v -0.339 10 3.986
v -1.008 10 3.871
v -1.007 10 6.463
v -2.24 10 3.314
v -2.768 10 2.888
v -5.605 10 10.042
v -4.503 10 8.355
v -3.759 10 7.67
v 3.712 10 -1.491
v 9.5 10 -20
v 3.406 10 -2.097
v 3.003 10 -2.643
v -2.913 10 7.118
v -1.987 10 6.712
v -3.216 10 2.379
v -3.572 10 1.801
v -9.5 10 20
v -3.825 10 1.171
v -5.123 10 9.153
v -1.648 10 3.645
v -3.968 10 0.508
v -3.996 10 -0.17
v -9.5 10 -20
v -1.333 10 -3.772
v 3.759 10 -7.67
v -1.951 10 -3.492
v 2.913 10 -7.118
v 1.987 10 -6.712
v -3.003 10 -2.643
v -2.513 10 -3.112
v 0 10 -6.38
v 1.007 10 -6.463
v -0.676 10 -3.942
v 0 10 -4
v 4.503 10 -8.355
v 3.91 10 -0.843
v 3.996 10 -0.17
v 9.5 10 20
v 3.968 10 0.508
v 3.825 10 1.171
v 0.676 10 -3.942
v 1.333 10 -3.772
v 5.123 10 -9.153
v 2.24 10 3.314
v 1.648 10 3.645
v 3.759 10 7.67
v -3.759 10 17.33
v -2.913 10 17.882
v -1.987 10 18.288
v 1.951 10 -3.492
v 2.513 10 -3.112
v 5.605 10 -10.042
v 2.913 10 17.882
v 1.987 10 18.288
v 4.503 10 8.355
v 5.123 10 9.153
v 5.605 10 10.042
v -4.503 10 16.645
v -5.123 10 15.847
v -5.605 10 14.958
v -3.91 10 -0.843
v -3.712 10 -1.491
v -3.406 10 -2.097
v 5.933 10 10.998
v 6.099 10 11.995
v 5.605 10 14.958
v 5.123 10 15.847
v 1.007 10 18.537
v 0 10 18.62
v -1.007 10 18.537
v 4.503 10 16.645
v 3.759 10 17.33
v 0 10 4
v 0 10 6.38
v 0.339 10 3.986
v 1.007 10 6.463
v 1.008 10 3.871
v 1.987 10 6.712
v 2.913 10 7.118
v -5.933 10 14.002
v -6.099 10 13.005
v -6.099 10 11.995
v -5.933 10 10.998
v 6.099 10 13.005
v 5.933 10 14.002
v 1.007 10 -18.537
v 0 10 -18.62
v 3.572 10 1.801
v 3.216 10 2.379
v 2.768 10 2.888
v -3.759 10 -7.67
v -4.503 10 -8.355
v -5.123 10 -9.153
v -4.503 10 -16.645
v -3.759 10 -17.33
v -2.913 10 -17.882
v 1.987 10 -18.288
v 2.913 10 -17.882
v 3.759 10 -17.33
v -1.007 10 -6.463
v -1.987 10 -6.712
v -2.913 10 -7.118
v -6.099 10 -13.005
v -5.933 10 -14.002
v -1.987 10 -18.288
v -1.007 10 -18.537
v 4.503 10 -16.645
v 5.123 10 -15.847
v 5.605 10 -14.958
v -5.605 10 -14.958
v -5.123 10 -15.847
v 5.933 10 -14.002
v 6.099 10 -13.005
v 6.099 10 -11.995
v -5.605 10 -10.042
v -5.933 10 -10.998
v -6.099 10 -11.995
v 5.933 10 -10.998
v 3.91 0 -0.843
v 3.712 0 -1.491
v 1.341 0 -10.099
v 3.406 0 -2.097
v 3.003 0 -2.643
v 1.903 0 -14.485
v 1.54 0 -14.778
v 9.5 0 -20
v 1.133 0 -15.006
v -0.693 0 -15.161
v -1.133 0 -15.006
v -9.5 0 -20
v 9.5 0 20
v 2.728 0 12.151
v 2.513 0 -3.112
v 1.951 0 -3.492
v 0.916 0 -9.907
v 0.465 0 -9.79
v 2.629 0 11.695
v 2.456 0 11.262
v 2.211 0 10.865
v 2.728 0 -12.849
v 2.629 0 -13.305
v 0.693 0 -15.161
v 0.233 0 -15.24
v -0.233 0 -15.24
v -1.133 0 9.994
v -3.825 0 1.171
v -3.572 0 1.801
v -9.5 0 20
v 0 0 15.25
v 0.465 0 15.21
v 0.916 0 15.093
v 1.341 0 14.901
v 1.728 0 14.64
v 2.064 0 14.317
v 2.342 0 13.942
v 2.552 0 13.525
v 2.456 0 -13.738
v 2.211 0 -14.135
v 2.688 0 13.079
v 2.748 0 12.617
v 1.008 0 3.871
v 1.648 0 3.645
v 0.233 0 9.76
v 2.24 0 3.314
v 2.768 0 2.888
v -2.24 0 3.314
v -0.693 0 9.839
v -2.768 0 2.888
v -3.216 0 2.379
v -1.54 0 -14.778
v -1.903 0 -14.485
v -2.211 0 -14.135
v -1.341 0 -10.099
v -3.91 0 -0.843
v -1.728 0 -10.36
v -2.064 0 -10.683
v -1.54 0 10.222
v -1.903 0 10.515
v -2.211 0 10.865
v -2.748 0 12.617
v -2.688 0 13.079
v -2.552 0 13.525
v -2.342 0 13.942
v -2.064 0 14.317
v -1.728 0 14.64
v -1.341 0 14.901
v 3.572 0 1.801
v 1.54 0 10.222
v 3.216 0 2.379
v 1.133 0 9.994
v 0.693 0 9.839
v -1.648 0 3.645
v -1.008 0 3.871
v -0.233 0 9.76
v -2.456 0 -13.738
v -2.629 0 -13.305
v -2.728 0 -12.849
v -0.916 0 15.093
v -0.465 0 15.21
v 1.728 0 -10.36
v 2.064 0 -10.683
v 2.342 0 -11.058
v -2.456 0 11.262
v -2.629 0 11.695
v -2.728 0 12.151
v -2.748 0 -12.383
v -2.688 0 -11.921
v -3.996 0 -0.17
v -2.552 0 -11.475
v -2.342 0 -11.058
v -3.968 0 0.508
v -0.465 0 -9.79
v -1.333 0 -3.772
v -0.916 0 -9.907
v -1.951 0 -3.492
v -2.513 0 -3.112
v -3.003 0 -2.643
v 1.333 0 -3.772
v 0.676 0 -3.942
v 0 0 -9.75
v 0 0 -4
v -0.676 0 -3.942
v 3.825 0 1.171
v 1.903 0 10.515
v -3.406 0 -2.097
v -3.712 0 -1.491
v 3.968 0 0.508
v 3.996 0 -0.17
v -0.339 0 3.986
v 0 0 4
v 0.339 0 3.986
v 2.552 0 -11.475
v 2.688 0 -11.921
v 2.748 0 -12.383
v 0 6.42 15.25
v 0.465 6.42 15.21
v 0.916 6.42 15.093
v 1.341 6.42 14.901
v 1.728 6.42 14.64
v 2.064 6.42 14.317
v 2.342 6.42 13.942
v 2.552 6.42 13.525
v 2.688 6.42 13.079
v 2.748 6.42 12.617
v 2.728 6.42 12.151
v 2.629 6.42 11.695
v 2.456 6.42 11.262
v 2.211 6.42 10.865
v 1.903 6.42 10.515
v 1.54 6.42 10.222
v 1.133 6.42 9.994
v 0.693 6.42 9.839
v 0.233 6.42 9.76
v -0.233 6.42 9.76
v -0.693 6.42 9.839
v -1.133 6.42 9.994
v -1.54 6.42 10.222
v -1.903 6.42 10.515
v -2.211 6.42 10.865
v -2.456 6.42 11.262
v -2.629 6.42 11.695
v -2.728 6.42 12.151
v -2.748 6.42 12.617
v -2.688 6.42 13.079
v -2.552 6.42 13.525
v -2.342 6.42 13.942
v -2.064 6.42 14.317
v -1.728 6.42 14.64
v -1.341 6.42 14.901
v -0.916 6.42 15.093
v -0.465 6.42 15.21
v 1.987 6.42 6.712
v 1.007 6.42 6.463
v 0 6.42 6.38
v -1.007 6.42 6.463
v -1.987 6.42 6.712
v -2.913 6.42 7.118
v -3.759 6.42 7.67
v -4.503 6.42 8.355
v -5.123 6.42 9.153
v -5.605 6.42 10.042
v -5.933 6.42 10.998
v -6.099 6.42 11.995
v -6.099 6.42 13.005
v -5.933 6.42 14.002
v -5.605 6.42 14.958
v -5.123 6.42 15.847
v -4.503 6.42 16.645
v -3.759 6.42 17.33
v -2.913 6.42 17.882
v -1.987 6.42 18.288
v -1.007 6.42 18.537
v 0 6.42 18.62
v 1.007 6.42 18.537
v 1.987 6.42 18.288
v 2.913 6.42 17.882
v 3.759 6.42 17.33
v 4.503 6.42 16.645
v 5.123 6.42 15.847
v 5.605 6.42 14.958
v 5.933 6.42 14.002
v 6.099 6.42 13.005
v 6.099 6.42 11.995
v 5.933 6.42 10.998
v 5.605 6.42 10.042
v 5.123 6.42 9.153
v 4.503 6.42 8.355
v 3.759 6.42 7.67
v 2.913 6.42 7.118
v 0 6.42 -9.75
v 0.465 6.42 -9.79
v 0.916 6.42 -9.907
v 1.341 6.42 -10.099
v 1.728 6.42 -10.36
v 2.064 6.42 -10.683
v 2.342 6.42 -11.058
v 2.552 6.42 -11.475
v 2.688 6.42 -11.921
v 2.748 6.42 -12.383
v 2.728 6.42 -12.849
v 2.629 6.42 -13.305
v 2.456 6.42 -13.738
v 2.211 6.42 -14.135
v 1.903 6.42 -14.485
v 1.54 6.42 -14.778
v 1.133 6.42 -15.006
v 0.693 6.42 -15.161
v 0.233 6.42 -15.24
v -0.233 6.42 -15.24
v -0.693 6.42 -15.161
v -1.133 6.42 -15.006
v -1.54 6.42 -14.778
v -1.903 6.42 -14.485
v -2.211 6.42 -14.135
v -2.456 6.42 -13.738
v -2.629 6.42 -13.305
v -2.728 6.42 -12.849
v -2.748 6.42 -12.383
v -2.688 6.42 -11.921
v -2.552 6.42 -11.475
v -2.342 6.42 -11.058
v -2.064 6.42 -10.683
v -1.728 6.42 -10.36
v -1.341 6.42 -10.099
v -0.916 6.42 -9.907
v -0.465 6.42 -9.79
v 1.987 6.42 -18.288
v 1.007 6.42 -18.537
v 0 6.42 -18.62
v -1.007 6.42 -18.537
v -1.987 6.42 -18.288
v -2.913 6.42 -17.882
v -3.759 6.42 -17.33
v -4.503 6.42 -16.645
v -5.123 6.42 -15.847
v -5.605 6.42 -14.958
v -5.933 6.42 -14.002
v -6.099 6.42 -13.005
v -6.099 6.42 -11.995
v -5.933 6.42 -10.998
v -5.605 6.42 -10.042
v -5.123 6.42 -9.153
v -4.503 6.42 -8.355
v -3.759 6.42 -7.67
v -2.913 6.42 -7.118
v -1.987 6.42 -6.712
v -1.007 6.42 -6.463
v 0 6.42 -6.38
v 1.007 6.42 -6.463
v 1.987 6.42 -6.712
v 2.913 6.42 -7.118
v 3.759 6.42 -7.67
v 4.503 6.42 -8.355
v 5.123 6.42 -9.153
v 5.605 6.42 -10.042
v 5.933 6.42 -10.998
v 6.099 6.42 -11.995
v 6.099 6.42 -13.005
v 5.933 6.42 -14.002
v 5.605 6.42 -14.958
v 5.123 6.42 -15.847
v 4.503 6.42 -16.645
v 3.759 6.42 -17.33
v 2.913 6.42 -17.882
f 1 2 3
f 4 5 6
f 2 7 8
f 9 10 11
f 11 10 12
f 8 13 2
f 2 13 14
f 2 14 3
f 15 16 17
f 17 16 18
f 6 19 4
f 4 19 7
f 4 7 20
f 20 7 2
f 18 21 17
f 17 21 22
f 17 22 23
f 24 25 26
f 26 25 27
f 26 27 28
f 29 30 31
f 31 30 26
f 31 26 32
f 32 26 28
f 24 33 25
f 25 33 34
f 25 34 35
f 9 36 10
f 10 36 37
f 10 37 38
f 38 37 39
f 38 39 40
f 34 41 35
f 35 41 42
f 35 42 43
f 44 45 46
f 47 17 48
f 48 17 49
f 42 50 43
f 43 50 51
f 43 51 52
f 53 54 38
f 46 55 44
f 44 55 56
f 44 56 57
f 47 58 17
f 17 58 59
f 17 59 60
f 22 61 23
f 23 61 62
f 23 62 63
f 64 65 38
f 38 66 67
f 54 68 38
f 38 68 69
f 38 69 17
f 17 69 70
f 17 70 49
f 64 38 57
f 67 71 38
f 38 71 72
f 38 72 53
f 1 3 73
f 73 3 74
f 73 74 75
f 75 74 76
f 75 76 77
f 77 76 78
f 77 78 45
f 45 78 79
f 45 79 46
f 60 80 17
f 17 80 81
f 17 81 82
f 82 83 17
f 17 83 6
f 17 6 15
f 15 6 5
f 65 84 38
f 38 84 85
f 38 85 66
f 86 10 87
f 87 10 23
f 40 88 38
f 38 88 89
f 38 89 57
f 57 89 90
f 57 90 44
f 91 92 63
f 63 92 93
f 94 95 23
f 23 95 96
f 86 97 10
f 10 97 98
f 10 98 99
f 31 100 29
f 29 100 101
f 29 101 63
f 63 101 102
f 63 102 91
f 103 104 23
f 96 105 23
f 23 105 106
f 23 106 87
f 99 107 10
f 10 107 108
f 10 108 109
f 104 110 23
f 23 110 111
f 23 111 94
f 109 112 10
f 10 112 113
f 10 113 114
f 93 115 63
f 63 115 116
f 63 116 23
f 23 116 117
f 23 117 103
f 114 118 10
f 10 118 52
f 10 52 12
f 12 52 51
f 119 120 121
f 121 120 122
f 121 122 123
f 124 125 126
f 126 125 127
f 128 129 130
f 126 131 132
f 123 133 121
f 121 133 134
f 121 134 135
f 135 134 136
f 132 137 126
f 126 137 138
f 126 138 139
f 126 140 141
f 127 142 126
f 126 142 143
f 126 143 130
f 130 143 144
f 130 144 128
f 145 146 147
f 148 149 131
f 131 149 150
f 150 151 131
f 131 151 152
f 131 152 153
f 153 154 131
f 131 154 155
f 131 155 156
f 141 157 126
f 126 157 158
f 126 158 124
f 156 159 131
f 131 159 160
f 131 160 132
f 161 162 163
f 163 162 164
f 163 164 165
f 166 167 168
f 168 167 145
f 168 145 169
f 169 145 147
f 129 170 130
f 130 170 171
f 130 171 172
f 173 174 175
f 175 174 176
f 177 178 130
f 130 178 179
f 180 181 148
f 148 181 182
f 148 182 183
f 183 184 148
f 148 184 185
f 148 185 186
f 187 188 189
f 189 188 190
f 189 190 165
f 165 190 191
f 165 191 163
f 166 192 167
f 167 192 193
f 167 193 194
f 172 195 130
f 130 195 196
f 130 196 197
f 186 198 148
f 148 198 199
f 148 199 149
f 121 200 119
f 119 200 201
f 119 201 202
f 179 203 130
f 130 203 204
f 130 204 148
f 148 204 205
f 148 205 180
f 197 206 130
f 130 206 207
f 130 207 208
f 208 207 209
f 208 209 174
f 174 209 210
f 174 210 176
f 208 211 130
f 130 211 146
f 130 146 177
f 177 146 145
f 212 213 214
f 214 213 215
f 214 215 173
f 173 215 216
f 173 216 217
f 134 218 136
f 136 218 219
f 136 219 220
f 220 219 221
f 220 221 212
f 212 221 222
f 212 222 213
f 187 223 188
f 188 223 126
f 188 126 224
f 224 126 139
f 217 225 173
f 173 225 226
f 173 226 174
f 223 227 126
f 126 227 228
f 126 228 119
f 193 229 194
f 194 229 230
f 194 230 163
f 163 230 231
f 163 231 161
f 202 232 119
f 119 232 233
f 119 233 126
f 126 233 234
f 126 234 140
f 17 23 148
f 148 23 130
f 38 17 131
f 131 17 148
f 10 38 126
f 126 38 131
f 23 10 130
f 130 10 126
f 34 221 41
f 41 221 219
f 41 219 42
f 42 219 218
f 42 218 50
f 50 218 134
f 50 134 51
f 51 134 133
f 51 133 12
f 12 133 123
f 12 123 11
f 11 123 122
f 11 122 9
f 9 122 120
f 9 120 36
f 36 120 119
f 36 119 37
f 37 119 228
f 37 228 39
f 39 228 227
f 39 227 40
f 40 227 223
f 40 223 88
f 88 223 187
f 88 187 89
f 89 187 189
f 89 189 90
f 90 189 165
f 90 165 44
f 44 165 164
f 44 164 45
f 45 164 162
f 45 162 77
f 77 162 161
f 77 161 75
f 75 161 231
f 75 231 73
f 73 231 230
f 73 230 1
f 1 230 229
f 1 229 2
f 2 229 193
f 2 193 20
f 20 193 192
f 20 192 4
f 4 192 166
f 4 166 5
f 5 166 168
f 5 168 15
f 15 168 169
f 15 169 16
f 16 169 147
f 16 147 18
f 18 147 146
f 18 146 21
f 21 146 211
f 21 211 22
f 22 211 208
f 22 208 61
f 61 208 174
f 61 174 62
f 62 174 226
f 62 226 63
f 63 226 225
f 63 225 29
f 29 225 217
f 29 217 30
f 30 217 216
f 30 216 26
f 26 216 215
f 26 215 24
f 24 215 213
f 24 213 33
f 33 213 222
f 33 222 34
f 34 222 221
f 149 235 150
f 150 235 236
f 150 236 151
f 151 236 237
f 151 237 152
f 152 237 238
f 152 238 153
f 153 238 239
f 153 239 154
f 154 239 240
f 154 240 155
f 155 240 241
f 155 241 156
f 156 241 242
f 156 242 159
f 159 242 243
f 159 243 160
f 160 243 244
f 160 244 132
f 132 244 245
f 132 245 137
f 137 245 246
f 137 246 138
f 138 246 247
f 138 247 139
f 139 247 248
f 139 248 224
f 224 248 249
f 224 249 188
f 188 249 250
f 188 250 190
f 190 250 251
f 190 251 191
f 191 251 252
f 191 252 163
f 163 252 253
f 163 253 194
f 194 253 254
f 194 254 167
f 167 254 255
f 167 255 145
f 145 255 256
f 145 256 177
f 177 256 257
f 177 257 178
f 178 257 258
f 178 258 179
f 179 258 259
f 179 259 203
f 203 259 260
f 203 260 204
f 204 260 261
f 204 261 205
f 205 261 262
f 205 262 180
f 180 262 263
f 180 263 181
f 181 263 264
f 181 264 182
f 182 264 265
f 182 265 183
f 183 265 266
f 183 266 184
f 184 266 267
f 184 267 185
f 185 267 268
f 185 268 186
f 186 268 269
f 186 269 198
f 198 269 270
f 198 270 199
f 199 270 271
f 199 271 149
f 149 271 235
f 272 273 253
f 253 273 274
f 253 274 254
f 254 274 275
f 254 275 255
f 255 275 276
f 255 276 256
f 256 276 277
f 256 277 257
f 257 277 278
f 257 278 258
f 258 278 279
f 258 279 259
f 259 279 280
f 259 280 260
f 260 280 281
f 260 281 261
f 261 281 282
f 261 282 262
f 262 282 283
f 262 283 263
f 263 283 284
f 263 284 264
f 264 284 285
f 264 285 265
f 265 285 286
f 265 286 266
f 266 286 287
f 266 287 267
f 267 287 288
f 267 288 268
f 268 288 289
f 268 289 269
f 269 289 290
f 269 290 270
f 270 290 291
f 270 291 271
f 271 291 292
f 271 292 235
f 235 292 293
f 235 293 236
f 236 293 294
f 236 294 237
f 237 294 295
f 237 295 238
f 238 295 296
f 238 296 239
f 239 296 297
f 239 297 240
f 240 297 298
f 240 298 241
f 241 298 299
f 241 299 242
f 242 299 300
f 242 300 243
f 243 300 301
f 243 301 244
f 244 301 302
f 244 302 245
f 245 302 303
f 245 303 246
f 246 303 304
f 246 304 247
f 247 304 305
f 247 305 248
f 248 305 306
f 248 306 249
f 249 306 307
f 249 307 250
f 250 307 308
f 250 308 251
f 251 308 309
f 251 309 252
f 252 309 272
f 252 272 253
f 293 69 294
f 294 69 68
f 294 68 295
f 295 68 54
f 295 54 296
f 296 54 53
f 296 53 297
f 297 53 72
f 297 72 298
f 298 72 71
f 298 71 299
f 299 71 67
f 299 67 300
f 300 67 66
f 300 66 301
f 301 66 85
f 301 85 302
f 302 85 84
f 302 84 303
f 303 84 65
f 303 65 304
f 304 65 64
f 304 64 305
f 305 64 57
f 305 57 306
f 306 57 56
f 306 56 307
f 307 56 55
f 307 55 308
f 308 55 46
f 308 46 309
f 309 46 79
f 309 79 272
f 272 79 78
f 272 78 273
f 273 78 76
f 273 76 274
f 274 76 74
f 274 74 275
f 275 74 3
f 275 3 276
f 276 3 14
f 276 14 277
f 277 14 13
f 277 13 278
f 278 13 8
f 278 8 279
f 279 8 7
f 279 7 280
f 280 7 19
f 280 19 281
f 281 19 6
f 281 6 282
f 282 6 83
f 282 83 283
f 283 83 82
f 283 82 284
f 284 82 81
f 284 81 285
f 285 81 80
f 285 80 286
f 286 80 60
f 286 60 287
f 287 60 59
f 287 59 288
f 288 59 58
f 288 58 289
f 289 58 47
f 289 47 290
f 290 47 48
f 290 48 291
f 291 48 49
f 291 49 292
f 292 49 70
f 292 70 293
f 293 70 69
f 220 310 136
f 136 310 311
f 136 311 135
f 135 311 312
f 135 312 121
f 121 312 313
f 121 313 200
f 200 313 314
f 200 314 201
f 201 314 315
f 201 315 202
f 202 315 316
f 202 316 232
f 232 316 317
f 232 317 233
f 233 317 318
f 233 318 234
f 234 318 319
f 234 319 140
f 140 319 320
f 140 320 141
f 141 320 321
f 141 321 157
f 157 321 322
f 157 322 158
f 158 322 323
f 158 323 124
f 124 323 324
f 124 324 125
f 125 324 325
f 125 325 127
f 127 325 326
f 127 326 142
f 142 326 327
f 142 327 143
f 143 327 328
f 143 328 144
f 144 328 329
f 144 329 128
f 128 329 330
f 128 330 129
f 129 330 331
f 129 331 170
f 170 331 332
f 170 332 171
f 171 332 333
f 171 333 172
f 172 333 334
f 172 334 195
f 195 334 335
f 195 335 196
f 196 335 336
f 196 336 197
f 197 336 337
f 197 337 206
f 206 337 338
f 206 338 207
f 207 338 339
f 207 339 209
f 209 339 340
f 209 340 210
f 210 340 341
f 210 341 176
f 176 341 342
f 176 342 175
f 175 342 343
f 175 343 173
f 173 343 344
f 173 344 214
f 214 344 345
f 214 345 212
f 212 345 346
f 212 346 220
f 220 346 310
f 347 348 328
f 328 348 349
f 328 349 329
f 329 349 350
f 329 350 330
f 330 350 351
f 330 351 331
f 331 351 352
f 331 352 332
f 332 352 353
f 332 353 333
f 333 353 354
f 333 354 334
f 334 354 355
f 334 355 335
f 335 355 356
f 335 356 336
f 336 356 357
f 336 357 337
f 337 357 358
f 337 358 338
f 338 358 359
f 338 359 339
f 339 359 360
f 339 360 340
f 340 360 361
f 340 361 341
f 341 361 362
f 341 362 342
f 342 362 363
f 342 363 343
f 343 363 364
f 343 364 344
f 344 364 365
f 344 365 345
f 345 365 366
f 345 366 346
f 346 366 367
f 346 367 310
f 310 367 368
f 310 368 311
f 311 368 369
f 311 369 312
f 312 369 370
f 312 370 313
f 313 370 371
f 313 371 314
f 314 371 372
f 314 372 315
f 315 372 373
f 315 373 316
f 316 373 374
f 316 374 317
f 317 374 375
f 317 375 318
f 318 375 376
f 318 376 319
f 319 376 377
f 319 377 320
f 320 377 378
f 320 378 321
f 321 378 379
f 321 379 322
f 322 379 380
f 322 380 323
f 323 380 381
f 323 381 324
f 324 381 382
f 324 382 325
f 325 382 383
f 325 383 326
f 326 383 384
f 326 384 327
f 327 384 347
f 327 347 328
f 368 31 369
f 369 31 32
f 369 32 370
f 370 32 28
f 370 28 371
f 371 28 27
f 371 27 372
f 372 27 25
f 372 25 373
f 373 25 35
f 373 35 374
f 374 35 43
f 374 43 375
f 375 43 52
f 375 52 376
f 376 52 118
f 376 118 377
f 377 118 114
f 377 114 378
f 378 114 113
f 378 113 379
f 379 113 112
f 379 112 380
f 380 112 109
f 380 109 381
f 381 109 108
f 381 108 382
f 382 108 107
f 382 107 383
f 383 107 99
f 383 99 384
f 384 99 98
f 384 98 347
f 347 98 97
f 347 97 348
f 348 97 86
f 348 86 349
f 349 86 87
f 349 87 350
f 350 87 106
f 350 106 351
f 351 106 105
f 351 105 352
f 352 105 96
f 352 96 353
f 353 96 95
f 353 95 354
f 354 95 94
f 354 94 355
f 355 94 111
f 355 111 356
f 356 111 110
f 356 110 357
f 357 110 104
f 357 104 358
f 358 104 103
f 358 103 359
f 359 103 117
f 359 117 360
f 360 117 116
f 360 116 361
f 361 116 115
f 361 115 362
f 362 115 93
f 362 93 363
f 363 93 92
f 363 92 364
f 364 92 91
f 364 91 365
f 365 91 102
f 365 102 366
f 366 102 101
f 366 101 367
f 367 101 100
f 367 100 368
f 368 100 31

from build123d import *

# Parameters (mm, degrees)
SKETCH1_W                               = 19
SKETCH1_H                               = 40
SKETCH1_R                               = 4
BOSS_EXTRUDE1_DEPTH                     = 10
CBORE_FOR_M5_HEX_HEAD_BOLT1_D           = 5.5
CBORE_FOR_M5_HEX_HEAD_BOLT1_DEPTH       = 10
CBORE_FOR_M5_HEX_HEAD_BOLT1_CBORE_D     = 12.24
CBORE_FOR_M5_HEX_HEAD_BOLT1_CBORE_DEPTH = 3.58


with BuildPart() as part:
    # Sketch1 → Boss-Extrude1 (new body)
    with BuildSketch(Plane(origin=(0, 0, 0), x_dir=(1, 0, 0), z_dir=(0, 1, 0))):
        Rectangle(SKETCH1_W, SKETCH1_H)
        Circle(SKETCH1_R, mode=Mode.SUBTRACT)
    extrude(amount=BOSS_EXTRUDE1_DEPTH)

    # CBORE for M5 Hex Head Bolt1
    with Locations(Plane(origin=(0, 10, 0), x_dir=(1, 0, 0), z_dir=(0, 1, 0))):
        with Locations((0, 12.5), (0, -12.5)):
            CounterBoreHole(CBORE_FOR_M5_HEX_HEAD_BOLT1_D / 2, CBORE_FOR_M5_HEX_HEAD_BOLT1_CBORE_D / 2, CBORE_FOR_M5_HEX_HEAD_BOLT1_CBORE_DEPTH, depth=CBORE_FOR_M5_HEX_HEAD_BOLT1_DEPTH)


solid = part.part
